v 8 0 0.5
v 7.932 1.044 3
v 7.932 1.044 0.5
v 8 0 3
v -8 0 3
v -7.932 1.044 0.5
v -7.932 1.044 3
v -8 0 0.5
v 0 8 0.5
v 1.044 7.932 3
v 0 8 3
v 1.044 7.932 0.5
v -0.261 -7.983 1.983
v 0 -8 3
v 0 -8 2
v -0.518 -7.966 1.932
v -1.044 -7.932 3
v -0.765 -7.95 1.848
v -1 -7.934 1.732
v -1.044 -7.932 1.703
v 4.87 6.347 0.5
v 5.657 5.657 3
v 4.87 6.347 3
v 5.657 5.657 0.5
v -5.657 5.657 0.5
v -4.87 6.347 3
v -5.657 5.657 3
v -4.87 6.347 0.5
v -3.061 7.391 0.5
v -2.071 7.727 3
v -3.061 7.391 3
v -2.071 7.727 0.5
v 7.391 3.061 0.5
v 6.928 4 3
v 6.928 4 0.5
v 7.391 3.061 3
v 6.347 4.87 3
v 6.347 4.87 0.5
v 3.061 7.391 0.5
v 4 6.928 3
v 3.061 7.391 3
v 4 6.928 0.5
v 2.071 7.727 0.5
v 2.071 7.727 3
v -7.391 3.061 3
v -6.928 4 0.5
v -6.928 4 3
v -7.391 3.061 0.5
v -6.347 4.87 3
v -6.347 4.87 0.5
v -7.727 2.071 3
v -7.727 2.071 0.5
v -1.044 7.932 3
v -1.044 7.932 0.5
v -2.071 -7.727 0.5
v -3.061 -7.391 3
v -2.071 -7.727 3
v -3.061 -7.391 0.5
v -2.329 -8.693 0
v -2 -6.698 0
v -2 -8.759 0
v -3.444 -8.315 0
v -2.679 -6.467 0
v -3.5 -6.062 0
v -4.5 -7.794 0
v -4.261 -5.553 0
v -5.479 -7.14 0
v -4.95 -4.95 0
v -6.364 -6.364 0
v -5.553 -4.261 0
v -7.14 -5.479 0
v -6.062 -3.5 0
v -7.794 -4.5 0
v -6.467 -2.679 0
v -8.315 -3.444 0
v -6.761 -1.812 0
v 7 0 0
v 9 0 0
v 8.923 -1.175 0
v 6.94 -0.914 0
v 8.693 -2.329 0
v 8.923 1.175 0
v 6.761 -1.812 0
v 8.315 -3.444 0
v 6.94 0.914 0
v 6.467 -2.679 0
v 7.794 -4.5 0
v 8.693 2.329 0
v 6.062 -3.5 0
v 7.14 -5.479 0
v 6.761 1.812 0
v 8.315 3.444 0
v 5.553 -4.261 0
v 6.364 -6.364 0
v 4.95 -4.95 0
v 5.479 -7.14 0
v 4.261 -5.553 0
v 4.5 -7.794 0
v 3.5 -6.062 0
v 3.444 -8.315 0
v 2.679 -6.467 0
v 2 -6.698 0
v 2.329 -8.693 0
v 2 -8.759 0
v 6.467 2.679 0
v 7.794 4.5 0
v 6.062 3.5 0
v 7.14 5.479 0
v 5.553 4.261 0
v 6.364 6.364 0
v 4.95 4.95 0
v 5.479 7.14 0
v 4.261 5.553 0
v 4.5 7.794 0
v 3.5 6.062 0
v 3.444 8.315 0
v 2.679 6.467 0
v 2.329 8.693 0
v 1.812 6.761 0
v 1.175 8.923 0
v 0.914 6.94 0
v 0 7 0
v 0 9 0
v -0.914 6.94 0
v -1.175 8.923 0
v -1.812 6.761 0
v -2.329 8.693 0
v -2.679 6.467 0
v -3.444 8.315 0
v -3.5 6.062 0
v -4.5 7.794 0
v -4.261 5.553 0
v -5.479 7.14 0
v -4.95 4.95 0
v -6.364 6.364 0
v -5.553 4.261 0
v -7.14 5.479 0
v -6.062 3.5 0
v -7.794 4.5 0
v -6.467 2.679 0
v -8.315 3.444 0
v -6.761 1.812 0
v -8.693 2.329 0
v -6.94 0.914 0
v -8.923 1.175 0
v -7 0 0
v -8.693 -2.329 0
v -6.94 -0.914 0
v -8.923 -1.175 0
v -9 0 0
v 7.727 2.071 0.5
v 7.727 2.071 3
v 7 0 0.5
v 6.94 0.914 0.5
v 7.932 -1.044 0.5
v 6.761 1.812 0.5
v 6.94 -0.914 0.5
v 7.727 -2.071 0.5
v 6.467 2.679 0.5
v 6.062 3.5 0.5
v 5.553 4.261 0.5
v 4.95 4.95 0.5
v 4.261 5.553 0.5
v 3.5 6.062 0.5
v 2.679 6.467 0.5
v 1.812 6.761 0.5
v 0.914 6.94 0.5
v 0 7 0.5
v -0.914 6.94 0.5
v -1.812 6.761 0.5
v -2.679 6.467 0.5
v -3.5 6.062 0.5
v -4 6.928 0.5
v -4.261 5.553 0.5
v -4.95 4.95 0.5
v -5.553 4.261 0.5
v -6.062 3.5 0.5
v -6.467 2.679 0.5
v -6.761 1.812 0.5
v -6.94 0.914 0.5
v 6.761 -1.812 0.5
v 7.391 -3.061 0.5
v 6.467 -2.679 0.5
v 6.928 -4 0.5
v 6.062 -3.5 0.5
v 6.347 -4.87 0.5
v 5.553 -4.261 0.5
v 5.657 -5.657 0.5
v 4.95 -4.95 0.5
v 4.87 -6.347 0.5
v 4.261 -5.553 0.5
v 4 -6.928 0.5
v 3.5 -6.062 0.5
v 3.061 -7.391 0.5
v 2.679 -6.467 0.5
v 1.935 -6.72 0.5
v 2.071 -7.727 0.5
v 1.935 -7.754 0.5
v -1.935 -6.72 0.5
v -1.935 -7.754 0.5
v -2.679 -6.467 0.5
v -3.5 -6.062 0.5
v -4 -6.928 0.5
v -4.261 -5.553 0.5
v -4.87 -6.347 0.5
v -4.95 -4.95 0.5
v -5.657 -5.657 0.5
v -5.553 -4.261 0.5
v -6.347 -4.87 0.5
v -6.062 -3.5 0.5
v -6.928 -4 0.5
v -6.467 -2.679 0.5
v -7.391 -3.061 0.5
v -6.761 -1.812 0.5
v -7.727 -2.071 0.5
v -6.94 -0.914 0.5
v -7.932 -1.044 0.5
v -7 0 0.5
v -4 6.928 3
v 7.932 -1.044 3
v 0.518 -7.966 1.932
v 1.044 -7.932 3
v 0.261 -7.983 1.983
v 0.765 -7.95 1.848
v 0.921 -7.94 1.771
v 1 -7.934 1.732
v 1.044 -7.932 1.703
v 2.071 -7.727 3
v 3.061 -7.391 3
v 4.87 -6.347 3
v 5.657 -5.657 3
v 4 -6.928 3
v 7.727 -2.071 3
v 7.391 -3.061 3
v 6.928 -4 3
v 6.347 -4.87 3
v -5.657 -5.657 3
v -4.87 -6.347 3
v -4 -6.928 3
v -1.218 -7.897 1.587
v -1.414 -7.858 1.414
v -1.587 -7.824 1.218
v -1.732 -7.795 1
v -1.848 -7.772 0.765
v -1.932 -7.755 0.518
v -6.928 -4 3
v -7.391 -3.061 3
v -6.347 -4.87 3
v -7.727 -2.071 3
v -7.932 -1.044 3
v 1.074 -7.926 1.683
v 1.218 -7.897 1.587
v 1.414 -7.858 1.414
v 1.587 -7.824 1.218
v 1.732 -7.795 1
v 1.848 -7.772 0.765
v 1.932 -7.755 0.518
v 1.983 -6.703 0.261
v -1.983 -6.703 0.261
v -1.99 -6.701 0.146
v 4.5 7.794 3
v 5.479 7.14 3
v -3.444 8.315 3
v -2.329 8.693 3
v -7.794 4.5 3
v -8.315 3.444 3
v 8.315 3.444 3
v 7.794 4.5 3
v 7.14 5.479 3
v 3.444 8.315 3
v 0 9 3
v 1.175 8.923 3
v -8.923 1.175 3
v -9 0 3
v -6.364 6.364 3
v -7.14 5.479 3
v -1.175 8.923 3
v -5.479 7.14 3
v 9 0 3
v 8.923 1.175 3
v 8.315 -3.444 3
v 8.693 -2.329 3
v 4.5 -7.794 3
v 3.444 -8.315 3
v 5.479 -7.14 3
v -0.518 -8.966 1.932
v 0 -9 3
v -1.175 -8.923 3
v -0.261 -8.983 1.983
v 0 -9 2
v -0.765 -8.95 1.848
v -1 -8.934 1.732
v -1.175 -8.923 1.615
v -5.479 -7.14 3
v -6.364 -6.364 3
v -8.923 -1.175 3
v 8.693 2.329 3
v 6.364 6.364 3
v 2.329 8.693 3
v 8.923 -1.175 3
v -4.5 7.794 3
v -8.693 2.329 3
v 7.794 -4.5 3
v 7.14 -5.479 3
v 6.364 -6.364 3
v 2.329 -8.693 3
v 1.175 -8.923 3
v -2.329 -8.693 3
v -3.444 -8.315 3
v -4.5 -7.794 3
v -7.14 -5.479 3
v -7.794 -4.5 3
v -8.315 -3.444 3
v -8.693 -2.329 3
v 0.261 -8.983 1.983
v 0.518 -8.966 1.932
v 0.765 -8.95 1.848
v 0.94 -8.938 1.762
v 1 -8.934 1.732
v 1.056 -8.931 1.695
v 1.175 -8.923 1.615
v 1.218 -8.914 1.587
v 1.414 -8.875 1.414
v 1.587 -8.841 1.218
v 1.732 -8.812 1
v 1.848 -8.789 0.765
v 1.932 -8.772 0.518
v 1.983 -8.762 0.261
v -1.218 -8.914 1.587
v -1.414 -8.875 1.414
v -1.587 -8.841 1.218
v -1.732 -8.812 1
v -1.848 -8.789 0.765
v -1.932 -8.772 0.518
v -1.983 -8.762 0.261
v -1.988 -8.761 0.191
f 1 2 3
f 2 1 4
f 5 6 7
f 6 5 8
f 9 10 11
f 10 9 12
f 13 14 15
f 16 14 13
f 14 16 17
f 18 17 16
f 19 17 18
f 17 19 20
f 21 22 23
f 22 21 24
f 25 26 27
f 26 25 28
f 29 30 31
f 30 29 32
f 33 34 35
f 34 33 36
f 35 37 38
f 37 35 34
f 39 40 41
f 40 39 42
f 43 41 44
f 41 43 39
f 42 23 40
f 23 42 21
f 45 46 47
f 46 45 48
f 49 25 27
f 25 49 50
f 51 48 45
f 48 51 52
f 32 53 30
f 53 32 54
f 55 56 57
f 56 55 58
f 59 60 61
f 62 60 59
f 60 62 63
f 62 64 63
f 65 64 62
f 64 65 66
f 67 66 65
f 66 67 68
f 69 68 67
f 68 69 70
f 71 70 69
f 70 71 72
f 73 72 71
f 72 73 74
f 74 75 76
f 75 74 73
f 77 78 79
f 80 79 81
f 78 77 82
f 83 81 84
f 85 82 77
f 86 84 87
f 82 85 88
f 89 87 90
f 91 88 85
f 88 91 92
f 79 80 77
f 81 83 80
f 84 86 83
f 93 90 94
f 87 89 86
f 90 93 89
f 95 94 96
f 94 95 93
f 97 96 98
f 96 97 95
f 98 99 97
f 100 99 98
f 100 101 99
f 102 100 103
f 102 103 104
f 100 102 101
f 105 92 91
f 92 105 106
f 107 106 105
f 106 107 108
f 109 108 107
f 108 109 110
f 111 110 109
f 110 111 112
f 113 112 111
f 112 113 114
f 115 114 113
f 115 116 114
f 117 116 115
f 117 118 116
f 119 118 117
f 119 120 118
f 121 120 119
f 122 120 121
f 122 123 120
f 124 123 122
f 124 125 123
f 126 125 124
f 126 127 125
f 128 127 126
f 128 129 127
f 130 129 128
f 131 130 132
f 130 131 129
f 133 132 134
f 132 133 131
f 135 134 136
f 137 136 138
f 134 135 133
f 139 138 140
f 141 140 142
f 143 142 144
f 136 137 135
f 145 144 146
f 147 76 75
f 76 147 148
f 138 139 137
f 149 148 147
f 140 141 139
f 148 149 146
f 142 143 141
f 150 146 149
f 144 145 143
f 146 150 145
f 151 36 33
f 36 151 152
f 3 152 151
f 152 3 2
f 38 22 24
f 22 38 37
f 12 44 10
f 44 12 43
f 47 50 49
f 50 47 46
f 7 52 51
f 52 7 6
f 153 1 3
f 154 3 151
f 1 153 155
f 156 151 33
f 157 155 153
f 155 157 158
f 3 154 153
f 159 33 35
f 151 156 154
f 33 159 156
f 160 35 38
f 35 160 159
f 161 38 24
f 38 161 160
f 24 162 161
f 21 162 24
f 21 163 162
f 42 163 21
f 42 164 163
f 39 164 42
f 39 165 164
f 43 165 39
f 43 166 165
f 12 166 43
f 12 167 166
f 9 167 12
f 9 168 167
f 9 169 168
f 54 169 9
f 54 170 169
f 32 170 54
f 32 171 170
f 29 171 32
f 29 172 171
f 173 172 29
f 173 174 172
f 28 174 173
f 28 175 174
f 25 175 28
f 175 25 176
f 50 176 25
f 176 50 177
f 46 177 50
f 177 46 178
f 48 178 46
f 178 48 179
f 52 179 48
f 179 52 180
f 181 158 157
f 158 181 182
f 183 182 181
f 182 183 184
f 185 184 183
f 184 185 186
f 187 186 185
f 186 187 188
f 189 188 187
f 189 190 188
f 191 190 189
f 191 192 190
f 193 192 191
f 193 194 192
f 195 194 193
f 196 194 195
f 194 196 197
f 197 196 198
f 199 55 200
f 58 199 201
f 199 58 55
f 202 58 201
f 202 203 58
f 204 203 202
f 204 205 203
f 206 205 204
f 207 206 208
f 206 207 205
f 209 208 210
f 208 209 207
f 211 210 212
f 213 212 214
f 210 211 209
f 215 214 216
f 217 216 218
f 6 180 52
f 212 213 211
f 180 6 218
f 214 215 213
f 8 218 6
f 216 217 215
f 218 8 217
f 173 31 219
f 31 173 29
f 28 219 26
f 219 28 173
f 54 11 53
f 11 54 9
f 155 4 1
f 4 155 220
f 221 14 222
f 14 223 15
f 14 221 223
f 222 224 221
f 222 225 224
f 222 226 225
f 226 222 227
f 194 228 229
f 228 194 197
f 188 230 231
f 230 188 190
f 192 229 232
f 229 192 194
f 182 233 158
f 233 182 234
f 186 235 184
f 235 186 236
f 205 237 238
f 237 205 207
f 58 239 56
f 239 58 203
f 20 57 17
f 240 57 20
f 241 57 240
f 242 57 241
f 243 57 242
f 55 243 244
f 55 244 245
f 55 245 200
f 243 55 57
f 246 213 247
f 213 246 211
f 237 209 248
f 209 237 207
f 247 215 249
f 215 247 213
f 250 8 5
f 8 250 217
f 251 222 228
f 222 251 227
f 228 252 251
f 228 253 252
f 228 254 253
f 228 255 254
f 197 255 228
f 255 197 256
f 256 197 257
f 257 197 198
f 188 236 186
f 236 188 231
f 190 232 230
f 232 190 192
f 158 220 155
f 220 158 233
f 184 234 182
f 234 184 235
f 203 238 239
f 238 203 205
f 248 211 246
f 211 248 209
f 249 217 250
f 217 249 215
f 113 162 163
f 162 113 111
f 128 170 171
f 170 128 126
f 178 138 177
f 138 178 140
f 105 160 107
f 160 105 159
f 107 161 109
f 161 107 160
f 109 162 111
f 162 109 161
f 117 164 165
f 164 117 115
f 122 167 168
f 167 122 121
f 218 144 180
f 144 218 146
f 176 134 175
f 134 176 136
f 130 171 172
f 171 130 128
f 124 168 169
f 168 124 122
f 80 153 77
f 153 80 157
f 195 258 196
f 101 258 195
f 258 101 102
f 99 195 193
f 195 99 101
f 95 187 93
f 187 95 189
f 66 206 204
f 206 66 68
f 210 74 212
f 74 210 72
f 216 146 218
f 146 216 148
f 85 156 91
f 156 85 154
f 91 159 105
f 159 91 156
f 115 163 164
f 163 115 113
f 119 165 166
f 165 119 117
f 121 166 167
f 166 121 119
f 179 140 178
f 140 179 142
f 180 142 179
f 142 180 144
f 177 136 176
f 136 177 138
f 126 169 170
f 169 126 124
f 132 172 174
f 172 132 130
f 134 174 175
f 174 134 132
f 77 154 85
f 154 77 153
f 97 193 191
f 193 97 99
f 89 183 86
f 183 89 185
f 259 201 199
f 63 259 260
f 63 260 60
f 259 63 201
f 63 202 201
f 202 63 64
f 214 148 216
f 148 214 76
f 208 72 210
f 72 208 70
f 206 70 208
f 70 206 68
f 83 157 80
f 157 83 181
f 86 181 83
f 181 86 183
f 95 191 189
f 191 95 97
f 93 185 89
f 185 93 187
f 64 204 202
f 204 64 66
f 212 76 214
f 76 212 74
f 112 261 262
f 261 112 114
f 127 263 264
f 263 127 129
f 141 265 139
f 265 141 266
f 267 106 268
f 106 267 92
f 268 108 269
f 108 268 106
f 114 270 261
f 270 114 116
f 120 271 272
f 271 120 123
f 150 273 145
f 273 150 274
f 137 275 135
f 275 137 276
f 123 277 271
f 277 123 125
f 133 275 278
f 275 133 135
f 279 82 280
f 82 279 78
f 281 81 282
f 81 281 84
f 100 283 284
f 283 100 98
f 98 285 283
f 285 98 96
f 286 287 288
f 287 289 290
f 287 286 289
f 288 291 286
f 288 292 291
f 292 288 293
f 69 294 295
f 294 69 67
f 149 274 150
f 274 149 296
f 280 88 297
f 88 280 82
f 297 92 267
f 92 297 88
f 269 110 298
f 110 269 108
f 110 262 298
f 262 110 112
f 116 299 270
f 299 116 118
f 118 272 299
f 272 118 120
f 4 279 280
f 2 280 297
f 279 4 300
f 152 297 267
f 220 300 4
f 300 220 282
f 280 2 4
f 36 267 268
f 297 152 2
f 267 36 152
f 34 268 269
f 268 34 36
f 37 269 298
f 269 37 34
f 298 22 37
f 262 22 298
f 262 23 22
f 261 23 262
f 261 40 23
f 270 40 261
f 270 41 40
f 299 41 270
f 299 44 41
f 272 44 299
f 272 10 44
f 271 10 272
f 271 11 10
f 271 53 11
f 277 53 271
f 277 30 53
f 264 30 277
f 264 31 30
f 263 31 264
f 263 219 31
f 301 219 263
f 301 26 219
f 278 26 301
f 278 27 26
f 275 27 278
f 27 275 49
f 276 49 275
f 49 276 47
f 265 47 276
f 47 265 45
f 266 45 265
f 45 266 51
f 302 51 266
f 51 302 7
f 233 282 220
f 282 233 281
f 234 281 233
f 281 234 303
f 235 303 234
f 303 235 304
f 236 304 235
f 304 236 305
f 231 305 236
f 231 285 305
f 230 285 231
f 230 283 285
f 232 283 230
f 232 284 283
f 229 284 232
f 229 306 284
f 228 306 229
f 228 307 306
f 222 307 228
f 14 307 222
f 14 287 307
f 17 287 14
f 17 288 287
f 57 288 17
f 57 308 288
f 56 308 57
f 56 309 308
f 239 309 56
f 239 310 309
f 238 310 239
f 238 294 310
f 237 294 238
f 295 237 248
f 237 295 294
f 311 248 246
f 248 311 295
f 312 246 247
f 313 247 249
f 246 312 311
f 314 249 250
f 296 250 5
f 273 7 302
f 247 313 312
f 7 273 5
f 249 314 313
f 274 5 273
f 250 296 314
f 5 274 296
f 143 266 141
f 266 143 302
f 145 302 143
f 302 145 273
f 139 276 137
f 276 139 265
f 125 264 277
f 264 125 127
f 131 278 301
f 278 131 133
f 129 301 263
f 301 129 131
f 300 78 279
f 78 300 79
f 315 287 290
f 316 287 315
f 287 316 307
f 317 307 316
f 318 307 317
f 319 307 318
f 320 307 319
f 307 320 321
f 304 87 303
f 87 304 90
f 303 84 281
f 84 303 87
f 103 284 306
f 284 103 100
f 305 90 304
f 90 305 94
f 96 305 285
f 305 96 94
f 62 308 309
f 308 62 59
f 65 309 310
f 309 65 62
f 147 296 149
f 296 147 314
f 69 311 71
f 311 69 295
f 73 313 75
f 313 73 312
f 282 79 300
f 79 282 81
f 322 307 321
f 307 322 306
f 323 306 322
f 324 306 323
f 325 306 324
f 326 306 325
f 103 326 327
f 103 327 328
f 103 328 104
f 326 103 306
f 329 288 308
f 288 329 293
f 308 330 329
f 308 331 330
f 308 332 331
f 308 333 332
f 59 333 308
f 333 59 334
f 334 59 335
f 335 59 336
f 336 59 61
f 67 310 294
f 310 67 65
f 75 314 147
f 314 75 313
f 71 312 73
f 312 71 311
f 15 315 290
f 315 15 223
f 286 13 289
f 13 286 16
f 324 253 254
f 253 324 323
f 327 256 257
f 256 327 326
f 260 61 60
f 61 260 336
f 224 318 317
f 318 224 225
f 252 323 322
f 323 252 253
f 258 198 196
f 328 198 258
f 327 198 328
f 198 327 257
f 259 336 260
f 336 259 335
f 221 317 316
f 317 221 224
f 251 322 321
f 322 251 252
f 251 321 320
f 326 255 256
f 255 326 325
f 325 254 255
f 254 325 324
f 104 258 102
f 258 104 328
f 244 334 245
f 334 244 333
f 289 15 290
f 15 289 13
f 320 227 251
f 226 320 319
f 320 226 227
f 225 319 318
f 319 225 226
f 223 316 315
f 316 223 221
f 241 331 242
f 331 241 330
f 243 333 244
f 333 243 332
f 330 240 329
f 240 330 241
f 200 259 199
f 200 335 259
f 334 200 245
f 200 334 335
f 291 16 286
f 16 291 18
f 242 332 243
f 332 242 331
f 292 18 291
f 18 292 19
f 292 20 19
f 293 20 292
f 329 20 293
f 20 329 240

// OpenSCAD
// file: ../build_environments.scad
// build_environments.scad: modules to build level sections
//

module pool(diameter=10.0, wall_height=2.0, step_width=3.0, connections=[])
{
    difference() {
        union() {
        difference() {
            cylinder(h=0.5,r1=diameter+step_width,r2=diameter+step_width,$fn=48);
            translate([0,0,-0.1])
                cylinder(h=0.7,r1=diameter,r2=diameter,$fn=48);
        }
        difference() {
            cylinder(h=wall_height,r1=diameter+step_width+1.0,r2=diameter+step_width+1.0,$fn=48);
            translate([0,0,-0.1])
                cylinder(h=wall_height+0.2,r1=diameter+step_width,r2=diameter+step_width,$fn=48);
        }
        }
    
        for (c = connections)
        {
            rotate([0,90,0]) {
                angle = atan2(c[1],c[0]);
                rotate([-angle,0,0]) {
                    cylinder(h=diameter+5.0,r1=c[2],r2=c[2],$fn=48);
                }
            }
        }
    }
}

module straight(length=10.0, width=2.0, dy1=0.0, dy2=0.0, dz=0.0)
{
    dims = [0, 0, 0, 0, 0, (dz/length)];
    matrix = [
        [ 1, dims[0], dims[1], 0 ],
        [ dims[2], 1, dims[4], 0 ],
        [ dims[5], dims[3], 1, 0 ],
        [ 0, 0, 0, 1 ]
    ];
    multmatrix(matrix)
    difference() {
        translate([dy1,0,0])
        union() {
            rotate([0,90,0]) {
                difference() {
                    cylinder(h=(length-dy1-dy2),r1=width+1.0,r2=width+1.0,$fn=24);
                    translate([0,0,-0.1])
                        cylinder(h=(length-dy1-dy2+0.2),r1=width,r2=width,$fn=24);
                }
                difference() {
                    cylinder(h=1.0,r1=width+2.0,r2=width+2.0,$fn=24);
                    translate([0,0,-0.1])
                        cylinder(h=1.2,r1=width,r2=width,$fn=24);
                }
                translate([0,0,(length-dy1-dy2)-1.0]) {
                    difference() {
                        cylinder(h=1.0,r1=width+2.0,r2=width+2.0,$fn=24);
                        translate([0,0,-0.1])
                            cylinder(h=1.2,r1=width,r2=width,$fn=24);
                    }
                }
            }
        }
        translate([0,0,-(2*width+4.0)/2])
            cube([3*length,3*length,2*width+4.0],center=true);
    }
}

module curve(p0=[0,0], center=[0,0], dir=1, angle=0.0, width=2.0)
{
    radius = sqrt((p0[0]-center[0])*(p0[0]-center[0]) + (p0[1]-center[1])*(p0[1]-center[1]));
    if (dir == 0) {
        difference() {
            rotate([0,0,-90])
            difference() {
                rotate_extrude(angle = angle, convexity = 10, $fn=32)
                    translate([radius, 0, 0])
                        circle(r = width+1.0,$fn=24);
                rotate([0,0,-1.0])
                    rotate_extrude(angle = angle+2.0, convexity = 10, $fn=32)
                        translate([radius, 0, 0])
                            circle(r = width,$fn=24);
            }
            translate([0,0,-(2*width+4.0)/2])
                cube([5*radius,5*radius,2*width+4.0],center=true);
        }
    }
    else {
        difference() {
            rotate([0,0,90])
            difference() {
                rotate_extrude(angle = -angle, convexity = 10, $fn=32)
                    translate([radius, 0, 0])
                        circle(r = width+1.0,$fn=24);
                rotate([0,0,1.0])
                    rotate_extrude(angle = -angle-2.0, convexity = 10, $fn=32)
                        translate([radius, 0, 0])
                            circle(r = width,$fn=24);
            }
            translate([0,0,-(2*width+4.0)/2])
                cube([5*radius,5*radius,2*width+4.0],center=true);
        }
    }

}

// test pool
//pool(diameter=12.0000, wall_height=3.0000, step_width=3.0000, connections=[[0.0000,-26.0000,2.0000], [23.6074,0.0000,2.0000]]);

// test straight, slope
//straight(length=26.0000, width=2.0000, dy1=11.8322, dy2=6.7082, dz=0.0000);
//straight(length=29.1549, width=12.0000, dy1=0.0000, dy2=0.0000, dz=-15.0000);

// test curve
//curve(p0=[23.6074, 0.0000], center=[23.6074, 5.0000], dir=0, angle=60.1011, width=2.0000);
//curve(p0=[33.6426, 12.4219], center=[37.9771, 9.9295], dir=1, angle=120.4627, width=2.0000);
// main file
use <../build_environments.scad>;
pool(diameter=7.0000, wall_height=3.0000, step_width=1.0000, connections=[[0.0000,-17.0000,2.0000]]);
